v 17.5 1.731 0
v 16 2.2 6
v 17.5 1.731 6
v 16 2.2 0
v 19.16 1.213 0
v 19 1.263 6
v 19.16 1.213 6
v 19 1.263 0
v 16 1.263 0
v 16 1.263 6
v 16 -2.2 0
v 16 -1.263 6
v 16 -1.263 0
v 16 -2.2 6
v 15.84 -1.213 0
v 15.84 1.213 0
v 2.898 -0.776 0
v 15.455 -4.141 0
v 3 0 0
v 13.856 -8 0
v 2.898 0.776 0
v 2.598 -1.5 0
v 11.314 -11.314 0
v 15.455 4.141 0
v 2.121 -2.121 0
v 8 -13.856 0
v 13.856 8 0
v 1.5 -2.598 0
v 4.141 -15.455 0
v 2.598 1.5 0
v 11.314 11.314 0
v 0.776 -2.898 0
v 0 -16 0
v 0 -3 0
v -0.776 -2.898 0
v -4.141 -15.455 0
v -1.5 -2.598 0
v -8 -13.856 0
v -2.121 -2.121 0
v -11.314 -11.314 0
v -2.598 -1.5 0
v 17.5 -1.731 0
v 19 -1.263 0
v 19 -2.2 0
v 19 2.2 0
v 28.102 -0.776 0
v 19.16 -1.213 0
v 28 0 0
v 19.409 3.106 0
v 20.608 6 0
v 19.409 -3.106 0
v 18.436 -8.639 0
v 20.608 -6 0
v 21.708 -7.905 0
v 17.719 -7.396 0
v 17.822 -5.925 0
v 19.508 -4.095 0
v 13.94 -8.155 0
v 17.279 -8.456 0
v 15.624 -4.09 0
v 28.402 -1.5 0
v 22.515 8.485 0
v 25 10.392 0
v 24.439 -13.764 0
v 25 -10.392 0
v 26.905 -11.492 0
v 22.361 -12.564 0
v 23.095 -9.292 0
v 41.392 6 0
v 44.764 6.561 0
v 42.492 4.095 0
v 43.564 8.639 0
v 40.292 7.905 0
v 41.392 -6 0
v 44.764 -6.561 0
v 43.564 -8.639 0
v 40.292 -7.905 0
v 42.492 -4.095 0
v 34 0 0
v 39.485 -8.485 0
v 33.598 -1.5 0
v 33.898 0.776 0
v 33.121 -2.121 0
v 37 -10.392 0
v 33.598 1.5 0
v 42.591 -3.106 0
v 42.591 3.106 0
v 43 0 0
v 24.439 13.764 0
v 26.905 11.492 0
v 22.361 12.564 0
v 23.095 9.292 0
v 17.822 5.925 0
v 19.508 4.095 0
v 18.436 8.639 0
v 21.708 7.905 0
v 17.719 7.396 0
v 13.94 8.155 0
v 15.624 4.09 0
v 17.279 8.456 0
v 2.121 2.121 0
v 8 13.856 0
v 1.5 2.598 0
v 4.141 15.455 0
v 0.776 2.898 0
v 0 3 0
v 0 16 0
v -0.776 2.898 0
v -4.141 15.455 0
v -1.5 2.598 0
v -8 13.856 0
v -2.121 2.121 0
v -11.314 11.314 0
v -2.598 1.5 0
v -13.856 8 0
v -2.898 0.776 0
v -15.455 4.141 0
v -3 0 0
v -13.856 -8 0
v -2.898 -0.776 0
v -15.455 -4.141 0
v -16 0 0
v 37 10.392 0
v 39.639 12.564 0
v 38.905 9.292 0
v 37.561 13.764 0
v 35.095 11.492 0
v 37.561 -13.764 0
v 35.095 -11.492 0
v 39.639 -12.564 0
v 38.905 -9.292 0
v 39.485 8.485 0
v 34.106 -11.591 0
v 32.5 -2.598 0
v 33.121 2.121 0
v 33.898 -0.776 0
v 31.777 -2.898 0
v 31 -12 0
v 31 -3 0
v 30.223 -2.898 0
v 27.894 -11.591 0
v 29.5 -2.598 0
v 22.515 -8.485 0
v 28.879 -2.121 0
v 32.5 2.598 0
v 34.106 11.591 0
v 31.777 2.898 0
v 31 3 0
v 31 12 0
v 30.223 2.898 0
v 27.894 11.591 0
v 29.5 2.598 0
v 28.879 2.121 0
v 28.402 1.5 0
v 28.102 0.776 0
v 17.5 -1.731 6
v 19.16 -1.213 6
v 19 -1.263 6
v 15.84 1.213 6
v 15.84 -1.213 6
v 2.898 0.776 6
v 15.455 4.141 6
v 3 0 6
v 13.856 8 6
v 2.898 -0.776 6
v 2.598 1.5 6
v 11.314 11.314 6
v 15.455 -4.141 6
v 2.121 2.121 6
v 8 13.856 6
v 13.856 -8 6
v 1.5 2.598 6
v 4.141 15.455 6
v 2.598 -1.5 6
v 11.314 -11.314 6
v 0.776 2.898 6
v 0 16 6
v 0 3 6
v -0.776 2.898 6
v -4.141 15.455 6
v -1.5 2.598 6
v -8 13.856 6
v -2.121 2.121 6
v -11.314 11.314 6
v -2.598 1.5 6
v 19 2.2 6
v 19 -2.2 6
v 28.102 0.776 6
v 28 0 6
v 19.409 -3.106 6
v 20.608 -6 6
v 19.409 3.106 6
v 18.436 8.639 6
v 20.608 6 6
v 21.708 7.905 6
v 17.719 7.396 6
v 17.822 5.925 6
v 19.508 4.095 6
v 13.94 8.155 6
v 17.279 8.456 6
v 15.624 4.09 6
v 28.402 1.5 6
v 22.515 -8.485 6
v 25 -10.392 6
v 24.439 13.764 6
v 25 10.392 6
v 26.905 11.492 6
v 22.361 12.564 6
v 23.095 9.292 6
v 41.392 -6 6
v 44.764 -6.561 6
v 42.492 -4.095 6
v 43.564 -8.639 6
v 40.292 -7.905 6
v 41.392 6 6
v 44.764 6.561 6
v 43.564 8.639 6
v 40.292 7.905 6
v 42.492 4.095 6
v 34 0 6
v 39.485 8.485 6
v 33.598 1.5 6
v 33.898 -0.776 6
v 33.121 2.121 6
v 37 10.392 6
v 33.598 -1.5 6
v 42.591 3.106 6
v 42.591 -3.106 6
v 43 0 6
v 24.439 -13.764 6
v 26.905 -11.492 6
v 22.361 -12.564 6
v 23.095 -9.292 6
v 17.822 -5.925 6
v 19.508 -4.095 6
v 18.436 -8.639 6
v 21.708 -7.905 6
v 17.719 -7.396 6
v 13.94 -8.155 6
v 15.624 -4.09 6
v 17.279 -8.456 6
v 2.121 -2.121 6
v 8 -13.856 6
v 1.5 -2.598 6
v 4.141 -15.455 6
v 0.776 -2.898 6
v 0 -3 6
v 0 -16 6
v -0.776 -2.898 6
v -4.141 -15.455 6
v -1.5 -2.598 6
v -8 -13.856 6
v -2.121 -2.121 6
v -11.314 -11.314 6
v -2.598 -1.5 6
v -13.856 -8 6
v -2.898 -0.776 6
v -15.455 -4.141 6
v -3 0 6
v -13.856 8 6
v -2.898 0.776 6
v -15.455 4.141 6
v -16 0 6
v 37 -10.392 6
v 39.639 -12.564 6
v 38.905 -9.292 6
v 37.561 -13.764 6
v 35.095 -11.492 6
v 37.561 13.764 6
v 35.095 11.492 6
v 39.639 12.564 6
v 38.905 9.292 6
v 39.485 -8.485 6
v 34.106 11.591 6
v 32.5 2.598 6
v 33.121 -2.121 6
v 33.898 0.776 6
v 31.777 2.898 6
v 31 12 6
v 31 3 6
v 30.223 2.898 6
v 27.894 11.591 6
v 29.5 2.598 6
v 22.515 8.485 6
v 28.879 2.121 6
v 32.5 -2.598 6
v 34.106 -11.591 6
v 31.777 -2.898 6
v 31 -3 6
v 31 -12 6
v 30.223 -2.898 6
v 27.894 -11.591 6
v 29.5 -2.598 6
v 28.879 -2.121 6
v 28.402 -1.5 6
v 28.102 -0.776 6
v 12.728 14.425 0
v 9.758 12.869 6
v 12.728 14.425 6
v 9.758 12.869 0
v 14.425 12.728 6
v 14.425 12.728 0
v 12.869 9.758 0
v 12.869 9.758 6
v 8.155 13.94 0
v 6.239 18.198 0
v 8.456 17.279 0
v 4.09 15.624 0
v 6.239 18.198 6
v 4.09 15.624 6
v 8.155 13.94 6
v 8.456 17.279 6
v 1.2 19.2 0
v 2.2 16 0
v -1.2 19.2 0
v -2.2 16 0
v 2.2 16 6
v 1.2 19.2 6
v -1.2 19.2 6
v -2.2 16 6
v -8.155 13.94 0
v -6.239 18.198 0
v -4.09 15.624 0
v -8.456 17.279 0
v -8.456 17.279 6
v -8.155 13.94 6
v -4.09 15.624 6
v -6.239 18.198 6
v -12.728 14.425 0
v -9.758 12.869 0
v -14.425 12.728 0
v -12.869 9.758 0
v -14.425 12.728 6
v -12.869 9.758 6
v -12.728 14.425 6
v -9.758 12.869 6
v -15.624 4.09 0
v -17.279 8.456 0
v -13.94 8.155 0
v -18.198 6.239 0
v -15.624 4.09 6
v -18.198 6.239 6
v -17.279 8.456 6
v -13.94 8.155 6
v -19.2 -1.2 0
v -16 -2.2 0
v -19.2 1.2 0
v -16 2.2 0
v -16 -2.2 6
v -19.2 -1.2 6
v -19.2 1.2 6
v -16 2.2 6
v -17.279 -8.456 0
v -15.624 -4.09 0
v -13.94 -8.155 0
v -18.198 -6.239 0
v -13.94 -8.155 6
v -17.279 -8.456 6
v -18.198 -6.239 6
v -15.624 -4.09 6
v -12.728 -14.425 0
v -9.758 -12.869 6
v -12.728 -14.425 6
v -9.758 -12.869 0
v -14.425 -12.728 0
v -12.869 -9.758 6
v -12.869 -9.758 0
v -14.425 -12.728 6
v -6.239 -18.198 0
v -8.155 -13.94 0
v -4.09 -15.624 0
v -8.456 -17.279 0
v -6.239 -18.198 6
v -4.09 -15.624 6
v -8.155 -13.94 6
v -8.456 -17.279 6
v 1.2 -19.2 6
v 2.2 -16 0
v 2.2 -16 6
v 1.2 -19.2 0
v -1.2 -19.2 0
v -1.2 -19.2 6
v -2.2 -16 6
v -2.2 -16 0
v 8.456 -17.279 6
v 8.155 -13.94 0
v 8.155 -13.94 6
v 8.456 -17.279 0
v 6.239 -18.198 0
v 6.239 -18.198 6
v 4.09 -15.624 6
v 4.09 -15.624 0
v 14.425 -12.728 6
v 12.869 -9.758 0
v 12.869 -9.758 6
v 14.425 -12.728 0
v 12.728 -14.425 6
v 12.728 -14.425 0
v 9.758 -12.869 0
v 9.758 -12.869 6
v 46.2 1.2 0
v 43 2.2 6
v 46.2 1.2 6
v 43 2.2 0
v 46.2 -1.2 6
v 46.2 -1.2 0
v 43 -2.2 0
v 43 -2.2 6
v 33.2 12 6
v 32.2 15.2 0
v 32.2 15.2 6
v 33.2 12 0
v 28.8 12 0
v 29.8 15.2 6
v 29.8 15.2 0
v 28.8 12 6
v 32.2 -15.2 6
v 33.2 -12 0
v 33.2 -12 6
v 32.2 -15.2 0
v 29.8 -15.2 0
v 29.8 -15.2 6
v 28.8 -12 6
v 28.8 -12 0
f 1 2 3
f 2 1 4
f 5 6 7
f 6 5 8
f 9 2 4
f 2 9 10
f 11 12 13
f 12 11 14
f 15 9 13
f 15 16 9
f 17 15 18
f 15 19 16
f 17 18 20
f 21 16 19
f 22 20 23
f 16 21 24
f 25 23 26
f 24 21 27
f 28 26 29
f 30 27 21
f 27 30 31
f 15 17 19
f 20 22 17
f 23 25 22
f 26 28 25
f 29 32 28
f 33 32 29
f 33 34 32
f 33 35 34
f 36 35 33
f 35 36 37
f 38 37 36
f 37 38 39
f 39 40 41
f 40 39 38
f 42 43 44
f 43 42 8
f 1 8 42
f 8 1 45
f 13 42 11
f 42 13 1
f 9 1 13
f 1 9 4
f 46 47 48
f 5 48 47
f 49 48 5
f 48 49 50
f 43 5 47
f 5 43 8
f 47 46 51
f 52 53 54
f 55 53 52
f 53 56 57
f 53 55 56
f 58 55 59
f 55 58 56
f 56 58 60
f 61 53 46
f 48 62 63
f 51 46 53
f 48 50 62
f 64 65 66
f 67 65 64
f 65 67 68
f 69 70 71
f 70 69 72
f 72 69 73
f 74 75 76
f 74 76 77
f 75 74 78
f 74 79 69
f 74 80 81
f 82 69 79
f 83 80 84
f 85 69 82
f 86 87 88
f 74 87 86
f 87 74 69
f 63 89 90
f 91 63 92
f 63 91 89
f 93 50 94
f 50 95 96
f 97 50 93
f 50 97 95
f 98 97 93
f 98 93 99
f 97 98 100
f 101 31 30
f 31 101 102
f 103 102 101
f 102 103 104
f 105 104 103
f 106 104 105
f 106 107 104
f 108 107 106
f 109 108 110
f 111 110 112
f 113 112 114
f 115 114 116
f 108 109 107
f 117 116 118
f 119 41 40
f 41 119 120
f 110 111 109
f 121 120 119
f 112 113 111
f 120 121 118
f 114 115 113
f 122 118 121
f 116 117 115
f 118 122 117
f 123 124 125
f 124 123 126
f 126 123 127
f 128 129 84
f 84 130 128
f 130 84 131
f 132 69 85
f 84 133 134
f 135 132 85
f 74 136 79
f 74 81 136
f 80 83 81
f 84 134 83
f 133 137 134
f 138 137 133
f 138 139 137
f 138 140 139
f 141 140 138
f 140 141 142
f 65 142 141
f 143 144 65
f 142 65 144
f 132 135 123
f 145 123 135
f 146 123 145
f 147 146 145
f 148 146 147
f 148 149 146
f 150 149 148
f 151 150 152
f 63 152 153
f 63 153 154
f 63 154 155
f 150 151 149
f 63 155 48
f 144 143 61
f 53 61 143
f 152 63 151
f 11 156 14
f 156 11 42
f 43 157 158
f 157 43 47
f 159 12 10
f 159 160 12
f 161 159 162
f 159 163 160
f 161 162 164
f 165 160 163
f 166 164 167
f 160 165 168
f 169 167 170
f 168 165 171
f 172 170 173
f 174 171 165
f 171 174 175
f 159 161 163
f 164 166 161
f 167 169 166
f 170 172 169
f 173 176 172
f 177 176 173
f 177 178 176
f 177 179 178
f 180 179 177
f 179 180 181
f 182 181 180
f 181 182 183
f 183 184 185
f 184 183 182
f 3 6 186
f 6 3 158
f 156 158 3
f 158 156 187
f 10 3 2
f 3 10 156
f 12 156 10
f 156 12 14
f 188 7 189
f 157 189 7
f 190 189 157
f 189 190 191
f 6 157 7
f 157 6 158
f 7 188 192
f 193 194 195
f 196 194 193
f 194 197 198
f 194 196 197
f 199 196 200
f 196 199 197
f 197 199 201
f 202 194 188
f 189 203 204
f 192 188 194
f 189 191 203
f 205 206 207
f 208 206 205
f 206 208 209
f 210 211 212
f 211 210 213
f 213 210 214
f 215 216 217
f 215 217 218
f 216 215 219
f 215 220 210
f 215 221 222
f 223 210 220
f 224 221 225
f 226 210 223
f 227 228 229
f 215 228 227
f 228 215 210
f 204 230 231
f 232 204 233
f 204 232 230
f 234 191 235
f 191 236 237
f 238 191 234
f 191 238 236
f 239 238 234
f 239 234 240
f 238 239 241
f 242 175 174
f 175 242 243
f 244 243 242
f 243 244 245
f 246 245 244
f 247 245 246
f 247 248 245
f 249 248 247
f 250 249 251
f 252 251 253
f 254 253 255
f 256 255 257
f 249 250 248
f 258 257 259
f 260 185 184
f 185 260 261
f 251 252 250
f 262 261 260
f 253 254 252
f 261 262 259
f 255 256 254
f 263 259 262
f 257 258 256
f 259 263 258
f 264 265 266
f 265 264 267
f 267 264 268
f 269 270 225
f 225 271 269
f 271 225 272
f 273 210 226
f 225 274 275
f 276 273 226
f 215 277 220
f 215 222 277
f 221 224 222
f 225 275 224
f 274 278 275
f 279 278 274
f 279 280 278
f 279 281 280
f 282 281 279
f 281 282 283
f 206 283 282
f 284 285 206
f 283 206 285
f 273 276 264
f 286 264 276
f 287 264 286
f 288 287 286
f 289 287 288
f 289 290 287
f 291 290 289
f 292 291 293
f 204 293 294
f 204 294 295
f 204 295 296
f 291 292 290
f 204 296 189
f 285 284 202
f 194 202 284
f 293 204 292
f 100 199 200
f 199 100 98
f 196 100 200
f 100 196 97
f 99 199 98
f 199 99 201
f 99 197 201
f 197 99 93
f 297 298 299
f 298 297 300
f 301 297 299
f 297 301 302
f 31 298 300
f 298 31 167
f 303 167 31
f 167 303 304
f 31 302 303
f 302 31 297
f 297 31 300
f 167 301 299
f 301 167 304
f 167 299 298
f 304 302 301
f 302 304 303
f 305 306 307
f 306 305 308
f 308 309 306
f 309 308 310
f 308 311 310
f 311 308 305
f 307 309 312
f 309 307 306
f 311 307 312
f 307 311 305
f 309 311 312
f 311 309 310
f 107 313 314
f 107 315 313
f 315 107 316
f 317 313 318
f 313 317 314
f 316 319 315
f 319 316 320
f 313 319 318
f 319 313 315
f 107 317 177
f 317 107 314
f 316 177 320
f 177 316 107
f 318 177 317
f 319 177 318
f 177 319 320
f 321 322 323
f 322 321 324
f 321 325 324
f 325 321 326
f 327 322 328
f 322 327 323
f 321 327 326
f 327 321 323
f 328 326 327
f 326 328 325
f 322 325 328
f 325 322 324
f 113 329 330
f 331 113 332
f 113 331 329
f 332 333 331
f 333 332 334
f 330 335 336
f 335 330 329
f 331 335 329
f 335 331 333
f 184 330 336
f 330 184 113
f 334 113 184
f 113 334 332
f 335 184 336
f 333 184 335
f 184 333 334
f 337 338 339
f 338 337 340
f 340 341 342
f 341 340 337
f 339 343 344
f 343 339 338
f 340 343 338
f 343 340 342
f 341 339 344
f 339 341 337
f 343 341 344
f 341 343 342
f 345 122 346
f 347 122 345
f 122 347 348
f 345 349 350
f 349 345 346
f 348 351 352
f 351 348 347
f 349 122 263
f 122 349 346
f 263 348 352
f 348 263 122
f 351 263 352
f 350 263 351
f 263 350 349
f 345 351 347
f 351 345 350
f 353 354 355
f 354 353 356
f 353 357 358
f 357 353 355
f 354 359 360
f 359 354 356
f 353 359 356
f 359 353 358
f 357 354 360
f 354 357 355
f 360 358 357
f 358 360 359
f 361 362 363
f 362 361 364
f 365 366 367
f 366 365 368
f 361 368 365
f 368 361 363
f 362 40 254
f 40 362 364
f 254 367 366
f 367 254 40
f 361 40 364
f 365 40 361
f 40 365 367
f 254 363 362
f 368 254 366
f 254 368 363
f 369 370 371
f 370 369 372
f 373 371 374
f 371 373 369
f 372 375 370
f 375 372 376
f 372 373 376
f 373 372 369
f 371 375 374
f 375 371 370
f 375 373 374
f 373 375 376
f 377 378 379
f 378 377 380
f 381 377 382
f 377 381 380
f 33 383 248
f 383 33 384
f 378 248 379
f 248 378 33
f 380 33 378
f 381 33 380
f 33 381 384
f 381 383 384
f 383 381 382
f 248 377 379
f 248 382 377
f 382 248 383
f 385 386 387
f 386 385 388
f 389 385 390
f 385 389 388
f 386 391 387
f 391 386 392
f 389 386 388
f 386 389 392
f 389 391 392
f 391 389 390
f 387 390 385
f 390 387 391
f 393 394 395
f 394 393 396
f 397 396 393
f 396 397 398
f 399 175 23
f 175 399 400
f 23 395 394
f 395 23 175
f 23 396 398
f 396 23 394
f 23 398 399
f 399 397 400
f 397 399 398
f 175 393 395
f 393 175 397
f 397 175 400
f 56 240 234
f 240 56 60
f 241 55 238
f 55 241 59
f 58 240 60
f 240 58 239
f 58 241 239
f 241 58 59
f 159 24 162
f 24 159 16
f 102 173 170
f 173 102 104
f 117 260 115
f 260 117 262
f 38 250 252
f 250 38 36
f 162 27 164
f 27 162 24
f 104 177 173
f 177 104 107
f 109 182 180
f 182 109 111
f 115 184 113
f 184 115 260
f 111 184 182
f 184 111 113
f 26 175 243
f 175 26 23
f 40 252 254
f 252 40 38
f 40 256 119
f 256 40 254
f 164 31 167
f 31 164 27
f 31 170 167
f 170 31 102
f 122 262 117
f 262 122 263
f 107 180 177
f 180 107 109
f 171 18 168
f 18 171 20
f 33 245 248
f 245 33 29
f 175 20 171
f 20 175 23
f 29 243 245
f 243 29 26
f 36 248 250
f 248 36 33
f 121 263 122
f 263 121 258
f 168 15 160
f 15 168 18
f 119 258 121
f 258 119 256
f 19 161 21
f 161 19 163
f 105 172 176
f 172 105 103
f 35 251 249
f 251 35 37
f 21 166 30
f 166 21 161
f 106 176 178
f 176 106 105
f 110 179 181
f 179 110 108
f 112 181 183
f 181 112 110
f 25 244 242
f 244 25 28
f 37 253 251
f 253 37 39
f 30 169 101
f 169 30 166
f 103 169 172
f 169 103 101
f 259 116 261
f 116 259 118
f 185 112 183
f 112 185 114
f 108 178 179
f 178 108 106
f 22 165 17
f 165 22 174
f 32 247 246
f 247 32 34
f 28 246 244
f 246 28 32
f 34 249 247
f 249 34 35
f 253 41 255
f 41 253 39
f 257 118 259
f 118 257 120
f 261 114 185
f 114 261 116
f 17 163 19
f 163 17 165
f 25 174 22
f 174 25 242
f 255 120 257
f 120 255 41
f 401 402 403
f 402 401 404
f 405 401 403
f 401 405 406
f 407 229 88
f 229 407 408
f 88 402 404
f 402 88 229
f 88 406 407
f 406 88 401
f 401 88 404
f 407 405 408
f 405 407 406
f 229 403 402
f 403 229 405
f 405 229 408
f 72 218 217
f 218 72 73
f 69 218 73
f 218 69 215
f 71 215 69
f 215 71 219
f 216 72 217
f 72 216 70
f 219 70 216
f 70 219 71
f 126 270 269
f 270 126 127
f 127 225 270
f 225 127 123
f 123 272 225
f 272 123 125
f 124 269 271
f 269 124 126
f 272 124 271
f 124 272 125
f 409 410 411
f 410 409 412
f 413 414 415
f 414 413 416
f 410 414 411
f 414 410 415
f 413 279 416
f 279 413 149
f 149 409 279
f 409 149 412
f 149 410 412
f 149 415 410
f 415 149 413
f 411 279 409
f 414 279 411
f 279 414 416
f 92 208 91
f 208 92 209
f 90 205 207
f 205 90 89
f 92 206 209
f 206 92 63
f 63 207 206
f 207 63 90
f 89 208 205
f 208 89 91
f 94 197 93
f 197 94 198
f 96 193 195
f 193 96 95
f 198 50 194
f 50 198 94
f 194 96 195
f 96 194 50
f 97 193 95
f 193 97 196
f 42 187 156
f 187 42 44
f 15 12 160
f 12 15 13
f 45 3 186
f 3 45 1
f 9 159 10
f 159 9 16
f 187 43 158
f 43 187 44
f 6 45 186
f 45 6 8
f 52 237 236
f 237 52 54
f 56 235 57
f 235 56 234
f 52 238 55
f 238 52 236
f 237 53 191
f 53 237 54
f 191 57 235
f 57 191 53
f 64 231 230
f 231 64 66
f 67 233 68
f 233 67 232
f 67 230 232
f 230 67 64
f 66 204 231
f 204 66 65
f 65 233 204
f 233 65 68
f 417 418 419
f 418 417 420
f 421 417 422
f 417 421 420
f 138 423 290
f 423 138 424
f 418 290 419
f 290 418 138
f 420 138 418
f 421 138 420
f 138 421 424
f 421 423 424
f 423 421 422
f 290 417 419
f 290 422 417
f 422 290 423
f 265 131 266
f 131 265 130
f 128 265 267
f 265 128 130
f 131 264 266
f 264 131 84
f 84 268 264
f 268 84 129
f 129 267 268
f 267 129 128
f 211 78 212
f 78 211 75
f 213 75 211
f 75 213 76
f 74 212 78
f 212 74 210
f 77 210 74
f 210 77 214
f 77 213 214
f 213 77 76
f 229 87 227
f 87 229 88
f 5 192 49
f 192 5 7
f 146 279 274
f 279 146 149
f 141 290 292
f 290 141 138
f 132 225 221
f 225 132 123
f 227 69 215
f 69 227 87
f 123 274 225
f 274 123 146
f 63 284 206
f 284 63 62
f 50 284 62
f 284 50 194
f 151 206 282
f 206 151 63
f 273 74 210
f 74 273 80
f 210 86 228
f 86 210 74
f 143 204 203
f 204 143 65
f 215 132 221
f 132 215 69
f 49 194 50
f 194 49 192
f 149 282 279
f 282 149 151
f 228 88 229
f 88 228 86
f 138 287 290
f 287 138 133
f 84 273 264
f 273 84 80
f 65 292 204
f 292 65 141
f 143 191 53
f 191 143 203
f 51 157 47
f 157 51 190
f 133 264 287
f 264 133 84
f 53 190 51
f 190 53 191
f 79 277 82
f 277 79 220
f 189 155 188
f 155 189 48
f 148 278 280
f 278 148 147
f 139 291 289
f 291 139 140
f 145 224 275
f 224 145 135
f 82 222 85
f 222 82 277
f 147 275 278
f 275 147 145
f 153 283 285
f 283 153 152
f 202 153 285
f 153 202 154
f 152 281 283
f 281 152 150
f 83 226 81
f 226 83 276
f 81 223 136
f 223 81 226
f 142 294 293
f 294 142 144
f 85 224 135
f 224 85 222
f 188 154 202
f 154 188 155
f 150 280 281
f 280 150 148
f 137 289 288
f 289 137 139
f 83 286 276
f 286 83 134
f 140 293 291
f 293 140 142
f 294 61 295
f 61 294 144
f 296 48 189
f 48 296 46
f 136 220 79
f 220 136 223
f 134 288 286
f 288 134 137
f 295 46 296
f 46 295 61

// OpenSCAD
// Checkpoint 2d - A meshing gear pair. Teeth are trapezoidal rather than a
// true involute: this is a reference for the mechanism, not a gear to cut.
$fn = 24;
module gear(teeth, r, thick) {
  union() {
    cylinder(h = thick, r = r);
    for (i = [0 : teeth - 1])
      rotate([0, 0, i * 360 / teeth])
        translate([r, 0, 0])
          linear_extrude(thick)
            polygon([[0, -2.2], [0, 2.2], [3.2, 1.2], [3.2, -1.2]]);
  }
}
difference() { gear(16, 16, 6); translate([0, 0, -1]) cylinder(h = 8, r = 3); }
translate([16 + 12 + 3, 0, 0])
  difference() { gear(12, 12, 6); translate([0, 0, -1]) cylinder(h = 8, r = 3); }
